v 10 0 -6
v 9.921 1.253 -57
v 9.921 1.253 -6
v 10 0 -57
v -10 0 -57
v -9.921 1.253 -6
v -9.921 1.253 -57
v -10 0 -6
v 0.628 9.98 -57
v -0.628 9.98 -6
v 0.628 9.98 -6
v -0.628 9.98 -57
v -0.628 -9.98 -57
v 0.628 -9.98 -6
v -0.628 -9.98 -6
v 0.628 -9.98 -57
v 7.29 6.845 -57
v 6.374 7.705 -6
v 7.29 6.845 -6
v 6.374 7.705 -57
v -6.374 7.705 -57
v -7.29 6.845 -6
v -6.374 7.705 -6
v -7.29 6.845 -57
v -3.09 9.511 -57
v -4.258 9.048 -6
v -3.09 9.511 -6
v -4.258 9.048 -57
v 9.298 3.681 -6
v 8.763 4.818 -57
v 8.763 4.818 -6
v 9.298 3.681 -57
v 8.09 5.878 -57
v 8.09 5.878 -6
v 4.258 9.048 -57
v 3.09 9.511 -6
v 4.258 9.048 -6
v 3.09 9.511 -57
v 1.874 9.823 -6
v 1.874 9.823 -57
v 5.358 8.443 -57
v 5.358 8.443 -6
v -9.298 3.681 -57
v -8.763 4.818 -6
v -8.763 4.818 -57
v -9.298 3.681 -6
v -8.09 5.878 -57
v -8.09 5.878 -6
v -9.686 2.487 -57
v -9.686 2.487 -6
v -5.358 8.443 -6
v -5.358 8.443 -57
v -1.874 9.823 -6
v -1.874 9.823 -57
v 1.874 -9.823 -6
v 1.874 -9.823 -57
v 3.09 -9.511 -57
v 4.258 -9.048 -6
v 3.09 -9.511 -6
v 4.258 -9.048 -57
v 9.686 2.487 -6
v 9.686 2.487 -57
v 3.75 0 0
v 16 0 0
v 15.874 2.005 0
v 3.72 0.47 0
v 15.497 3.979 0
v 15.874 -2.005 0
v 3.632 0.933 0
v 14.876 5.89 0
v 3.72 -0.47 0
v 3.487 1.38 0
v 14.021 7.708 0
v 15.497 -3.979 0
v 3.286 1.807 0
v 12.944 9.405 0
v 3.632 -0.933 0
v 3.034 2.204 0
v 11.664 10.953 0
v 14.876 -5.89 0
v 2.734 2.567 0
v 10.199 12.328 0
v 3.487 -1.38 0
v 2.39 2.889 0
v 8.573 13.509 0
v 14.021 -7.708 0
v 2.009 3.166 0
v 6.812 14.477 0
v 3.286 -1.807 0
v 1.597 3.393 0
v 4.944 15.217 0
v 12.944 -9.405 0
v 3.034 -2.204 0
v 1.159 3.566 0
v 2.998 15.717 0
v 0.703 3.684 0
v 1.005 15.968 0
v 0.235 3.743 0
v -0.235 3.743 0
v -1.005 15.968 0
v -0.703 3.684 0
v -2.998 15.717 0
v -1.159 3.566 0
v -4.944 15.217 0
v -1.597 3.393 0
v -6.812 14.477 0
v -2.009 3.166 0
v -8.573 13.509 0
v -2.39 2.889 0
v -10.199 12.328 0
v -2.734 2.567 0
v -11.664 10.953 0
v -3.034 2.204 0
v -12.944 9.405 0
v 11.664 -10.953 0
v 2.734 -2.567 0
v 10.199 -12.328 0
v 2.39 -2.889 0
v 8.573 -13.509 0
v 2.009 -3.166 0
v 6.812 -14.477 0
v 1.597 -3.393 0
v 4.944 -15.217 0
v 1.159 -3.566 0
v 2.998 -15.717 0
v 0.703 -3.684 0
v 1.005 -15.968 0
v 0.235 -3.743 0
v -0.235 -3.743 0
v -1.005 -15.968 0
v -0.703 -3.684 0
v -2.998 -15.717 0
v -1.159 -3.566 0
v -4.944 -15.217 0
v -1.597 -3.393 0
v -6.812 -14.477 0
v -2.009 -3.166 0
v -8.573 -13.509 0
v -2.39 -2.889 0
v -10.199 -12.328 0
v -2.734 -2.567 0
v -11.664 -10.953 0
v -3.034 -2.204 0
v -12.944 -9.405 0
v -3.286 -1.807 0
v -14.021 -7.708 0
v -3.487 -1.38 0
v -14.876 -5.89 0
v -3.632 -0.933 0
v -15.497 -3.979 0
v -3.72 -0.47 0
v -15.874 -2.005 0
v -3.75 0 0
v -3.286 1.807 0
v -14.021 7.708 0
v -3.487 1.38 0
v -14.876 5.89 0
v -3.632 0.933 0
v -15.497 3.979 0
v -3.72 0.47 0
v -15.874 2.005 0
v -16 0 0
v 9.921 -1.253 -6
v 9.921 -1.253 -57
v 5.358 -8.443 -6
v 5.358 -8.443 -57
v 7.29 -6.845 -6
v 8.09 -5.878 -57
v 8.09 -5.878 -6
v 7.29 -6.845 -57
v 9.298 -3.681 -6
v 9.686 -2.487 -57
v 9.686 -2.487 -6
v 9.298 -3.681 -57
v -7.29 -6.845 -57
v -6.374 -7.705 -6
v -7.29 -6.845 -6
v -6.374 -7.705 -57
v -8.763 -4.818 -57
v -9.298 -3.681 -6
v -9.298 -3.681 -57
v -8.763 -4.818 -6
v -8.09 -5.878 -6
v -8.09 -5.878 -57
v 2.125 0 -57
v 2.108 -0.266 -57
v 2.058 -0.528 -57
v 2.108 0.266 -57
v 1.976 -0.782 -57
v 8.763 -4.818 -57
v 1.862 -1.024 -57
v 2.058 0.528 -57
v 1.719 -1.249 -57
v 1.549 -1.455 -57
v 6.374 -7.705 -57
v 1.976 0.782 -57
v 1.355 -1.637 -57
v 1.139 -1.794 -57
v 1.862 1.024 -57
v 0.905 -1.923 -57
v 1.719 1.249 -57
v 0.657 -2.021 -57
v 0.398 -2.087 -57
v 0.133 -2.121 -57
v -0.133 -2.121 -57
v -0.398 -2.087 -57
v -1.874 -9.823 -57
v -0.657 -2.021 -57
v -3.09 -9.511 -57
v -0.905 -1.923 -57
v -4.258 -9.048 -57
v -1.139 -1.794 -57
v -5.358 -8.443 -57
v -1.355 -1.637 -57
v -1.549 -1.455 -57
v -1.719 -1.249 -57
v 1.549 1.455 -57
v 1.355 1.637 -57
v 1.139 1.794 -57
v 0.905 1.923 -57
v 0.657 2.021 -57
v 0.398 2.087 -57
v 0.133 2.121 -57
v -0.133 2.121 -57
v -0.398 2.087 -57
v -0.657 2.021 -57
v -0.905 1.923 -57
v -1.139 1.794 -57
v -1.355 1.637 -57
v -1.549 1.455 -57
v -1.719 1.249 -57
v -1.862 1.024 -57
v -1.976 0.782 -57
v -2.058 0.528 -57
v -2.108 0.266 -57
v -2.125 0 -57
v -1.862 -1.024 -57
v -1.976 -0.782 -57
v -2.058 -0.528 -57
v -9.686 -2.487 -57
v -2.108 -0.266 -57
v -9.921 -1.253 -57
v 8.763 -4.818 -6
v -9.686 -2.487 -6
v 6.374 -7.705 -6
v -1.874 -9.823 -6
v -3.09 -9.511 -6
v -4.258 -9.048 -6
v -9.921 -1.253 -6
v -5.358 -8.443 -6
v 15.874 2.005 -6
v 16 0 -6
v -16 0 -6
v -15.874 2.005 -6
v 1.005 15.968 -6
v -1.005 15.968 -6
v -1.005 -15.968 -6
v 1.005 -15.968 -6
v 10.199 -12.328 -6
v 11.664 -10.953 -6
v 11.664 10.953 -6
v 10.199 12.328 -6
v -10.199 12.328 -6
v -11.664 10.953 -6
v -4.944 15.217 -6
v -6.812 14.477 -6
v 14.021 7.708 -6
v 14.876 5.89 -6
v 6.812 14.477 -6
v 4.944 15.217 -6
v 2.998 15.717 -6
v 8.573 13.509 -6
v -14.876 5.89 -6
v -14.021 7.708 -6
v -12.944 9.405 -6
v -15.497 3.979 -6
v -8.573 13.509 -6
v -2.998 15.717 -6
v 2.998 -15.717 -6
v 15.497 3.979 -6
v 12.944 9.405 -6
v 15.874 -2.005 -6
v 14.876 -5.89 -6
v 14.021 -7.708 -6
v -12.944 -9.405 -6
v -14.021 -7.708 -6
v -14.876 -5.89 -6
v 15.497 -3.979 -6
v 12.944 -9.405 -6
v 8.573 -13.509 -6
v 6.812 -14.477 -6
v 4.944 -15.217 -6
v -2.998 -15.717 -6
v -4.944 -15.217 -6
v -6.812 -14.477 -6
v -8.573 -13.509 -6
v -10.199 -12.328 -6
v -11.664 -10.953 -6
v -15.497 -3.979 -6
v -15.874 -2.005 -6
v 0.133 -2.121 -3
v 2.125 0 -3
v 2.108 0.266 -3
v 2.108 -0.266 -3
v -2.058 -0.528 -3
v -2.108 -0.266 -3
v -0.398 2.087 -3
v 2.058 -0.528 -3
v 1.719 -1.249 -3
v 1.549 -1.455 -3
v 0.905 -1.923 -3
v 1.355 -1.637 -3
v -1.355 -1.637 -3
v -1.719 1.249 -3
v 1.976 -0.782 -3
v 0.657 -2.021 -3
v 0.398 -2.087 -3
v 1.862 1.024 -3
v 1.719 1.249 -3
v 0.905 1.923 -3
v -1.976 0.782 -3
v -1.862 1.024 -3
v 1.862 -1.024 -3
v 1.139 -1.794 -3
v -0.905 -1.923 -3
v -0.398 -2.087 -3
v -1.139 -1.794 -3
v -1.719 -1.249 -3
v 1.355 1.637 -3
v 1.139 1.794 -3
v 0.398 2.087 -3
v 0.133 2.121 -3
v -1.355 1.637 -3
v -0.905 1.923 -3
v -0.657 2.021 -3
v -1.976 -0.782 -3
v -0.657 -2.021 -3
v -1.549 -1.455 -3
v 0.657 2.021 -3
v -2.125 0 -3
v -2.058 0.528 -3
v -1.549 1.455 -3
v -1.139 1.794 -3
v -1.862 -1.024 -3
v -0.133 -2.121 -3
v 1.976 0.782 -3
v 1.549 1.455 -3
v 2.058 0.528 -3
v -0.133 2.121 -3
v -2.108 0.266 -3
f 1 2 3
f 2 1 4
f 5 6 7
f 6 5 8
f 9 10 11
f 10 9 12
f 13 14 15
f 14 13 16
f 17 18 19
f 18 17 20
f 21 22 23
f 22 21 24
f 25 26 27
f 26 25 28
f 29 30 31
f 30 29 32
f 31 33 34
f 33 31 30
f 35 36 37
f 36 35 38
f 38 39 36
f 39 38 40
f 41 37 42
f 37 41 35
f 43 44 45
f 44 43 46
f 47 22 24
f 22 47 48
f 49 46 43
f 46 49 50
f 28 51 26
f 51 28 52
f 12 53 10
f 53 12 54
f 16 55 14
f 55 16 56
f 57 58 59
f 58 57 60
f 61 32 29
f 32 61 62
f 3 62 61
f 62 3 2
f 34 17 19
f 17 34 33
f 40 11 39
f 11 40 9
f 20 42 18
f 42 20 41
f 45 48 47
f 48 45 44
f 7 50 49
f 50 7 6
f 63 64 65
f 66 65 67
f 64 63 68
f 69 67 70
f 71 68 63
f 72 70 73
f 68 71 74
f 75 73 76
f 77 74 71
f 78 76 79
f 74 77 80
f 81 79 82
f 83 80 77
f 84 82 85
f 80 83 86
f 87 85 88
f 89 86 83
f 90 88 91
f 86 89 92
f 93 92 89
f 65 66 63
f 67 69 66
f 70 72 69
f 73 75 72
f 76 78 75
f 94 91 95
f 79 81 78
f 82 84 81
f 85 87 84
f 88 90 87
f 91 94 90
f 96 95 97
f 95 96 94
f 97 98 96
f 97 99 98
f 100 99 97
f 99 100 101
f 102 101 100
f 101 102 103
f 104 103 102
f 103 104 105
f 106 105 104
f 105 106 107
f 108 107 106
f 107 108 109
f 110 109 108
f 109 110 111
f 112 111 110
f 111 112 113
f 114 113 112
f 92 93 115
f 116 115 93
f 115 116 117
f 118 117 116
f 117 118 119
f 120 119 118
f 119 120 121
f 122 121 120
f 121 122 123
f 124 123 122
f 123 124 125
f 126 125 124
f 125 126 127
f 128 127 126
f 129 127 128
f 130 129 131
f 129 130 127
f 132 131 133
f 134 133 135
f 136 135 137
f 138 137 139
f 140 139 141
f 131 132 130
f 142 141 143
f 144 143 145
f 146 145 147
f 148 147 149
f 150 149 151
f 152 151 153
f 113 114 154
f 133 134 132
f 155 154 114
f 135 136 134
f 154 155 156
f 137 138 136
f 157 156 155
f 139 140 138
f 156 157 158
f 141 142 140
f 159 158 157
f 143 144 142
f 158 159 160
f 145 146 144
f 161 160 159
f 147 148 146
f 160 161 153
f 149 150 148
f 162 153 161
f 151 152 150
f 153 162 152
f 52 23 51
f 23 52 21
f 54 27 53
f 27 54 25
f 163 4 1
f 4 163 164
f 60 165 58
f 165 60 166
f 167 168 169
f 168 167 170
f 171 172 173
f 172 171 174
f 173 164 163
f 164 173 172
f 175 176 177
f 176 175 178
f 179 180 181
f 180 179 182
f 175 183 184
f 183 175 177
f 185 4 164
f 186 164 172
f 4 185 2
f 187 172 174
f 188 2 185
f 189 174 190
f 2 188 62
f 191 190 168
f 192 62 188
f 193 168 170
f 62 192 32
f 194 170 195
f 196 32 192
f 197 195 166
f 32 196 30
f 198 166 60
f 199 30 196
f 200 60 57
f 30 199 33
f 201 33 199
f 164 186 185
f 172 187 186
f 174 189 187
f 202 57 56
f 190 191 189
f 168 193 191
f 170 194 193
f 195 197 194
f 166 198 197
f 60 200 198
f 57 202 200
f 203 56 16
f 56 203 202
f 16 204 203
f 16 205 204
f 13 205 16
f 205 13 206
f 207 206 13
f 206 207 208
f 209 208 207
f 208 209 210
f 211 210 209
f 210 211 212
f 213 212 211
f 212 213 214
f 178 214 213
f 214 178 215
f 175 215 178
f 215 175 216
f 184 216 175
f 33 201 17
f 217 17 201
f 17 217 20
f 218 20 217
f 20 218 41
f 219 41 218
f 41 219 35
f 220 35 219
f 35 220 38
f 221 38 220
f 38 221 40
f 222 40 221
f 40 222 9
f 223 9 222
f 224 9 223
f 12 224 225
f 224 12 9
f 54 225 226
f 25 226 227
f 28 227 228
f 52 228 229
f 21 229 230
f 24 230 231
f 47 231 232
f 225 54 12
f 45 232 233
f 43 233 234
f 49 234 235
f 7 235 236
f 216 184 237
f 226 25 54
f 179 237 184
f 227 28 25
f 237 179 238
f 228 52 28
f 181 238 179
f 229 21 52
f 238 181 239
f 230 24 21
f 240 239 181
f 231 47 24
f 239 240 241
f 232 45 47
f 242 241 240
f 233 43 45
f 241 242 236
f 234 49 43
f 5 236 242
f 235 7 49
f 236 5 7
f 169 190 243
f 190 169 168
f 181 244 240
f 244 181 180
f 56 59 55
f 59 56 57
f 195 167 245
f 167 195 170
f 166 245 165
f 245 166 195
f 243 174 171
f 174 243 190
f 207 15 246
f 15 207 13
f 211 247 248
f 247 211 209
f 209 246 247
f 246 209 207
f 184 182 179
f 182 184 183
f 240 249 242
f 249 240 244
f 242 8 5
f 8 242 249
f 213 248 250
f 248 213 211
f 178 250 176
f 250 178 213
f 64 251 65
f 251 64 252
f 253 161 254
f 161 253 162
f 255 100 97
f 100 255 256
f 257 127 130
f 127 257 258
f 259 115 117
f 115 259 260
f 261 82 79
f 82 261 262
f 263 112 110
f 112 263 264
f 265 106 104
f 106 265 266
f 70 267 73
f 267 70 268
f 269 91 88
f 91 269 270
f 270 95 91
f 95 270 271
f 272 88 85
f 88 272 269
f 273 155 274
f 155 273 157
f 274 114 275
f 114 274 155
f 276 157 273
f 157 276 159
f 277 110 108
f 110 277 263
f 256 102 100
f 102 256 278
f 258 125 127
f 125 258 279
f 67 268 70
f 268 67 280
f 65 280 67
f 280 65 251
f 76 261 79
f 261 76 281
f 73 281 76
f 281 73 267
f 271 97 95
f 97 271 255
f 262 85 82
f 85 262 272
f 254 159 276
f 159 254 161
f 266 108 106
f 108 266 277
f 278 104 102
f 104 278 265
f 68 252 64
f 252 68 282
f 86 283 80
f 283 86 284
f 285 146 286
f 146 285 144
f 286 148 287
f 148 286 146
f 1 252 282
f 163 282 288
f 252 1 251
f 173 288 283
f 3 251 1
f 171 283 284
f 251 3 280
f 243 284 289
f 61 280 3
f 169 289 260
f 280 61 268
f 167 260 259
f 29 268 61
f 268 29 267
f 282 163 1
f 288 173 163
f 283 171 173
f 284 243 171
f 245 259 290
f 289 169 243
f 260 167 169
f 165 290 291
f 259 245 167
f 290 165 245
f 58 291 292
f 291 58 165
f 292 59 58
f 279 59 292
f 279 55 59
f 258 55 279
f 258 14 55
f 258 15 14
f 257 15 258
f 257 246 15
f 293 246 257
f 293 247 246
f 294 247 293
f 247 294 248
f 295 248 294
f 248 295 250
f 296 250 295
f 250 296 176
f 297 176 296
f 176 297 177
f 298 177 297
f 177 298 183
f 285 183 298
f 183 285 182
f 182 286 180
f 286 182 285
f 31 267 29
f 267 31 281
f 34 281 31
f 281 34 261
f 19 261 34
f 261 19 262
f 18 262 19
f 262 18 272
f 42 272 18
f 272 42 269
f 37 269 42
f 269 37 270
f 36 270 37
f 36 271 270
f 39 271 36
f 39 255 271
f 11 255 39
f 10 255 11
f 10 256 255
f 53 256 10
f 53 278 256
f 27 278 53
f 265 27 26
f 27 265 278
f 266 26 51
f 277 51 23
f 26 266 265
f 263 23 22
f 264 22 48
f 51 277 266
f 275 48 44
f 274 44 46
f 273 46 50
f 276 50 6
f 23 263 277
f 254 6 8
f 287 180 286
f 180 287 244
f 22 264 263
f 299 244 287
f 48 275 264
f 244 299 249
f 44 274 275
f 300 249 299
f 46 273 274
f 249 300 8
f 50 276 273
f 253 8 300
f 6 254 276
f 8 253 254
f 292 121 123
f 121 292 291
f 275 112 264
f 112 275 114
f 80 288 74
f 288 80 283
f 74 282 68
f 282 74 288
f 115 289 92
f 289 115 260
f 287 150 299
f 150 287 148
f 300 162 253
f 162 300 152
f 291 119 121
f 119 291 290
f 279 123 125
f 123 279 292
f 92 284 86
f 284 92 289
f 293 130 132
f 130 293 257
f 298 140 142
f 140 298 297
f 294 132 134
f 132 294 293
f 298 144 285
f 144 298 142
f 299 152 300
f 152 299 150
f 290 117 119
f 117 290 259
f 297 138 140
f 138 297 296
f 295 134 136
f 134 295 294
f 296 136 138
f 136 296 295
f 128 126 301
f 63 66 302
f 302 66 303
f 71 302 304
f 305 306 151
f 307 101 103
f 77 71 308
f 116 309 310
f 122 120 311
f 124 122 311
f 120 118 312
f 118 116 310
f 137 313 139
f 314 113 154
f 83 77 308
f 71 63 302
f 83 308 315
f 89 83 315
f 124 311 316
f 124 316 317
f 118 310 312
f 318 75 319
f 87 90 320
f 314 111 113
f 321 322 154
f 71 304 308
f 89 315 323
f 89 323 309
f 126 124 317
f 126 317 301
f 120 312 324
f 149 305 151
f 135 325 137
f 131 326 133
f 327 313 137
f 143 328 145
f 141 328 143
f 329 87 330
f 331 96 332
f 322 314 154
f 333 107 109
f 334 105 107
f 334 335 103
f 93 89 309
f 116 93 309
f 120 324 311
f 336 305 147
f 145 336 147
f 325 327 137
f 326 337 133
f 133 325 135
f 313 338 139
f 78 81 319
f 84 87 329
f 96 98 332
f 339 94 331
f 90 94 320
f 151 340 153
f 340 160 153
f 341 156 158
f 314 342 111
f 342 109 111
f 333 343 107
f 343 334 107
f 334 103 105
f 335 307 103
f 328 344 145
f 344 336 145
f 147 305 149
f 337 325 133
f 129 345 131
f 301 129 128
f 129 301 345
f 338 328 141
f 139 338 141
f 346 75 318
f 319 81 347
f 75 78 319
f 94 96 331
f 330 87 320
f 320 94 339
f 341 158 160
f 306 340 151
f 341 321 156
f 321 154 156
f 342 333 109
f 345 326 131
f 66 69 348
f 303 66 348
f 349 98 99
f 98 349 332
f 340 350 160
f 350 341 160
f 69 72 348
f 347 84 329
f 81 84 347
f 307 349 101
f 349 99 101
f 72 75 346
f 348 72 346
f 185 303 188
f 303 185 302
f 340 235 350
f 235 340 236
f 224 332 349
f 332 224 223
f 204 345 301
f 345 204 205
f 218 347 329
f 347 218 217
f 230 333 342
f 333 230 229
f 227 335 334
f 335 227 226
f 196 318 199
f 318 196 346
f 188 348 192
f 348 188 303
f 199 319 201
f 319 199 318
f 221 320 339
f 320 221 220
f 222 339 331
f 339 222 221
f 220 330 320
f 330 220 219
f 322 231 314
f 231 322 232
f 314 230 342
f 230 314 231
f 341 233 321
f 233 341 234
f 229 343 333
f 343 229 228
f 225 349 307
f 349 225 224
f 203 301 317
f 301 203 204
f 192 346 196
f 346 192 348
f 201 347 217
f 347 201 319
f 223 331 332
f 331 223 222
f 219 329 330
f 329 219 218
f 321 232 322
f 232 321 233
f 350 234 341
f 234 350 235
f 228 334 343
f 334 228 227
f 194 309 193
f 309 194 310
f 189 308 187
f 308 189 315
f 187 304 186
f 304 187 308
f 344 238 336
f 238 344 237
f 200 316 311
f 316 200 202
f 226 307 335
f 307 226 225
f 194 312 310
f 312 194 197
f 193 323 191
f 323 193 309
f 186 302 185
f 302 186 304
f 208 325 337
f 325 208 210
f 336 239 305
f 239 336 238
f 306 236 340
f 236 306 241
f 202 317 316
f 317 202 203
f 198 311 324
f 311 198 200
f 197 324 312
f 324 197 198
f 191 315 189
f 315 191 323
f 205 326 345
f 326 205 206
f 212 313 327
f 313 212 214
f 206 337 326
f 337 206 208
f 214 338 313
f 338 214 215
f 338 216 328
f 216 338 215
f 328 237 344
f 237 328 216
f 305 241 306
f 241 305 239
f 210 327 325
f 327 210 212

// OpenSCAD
$fn = 50;


difference() {
	union() {
		translate(v = [0, 0, -57.0000000000]) {
			cylinder(h = 57, r = 10.0000000000);
		}
		translate(v = [0, 0, -6.0000000000]) {
			cylinder(h = 6, r = 16.0000000000);
		}
	}
	union() {
		translate(v = [0, 0, 0]) {
			rotate(a = [0, 0, 0]) {
				difference() {
					union() {
						#translate(v = [0, 0, -57.0000000000]) {
							cylinder(h = 57, r = 2.0000000000);
						}
						#translate(v = [0, 0, -3]) {
							cylinder(h = 3, r = 10.0000000000, r1 = 2.1250000000, r2 = 3.7500000000);
						}
						#translate(v = [0, 0, -57.0000000000]) {
							cylinder(h = 57, r = 2.1250000000);
						}
						#translate(v = [0, 0, -57.0000000000]) {
							cylinder(h = 57, r = 2.0000000000);
						}
					}
					union();
				}
			}
		}
	}
}
